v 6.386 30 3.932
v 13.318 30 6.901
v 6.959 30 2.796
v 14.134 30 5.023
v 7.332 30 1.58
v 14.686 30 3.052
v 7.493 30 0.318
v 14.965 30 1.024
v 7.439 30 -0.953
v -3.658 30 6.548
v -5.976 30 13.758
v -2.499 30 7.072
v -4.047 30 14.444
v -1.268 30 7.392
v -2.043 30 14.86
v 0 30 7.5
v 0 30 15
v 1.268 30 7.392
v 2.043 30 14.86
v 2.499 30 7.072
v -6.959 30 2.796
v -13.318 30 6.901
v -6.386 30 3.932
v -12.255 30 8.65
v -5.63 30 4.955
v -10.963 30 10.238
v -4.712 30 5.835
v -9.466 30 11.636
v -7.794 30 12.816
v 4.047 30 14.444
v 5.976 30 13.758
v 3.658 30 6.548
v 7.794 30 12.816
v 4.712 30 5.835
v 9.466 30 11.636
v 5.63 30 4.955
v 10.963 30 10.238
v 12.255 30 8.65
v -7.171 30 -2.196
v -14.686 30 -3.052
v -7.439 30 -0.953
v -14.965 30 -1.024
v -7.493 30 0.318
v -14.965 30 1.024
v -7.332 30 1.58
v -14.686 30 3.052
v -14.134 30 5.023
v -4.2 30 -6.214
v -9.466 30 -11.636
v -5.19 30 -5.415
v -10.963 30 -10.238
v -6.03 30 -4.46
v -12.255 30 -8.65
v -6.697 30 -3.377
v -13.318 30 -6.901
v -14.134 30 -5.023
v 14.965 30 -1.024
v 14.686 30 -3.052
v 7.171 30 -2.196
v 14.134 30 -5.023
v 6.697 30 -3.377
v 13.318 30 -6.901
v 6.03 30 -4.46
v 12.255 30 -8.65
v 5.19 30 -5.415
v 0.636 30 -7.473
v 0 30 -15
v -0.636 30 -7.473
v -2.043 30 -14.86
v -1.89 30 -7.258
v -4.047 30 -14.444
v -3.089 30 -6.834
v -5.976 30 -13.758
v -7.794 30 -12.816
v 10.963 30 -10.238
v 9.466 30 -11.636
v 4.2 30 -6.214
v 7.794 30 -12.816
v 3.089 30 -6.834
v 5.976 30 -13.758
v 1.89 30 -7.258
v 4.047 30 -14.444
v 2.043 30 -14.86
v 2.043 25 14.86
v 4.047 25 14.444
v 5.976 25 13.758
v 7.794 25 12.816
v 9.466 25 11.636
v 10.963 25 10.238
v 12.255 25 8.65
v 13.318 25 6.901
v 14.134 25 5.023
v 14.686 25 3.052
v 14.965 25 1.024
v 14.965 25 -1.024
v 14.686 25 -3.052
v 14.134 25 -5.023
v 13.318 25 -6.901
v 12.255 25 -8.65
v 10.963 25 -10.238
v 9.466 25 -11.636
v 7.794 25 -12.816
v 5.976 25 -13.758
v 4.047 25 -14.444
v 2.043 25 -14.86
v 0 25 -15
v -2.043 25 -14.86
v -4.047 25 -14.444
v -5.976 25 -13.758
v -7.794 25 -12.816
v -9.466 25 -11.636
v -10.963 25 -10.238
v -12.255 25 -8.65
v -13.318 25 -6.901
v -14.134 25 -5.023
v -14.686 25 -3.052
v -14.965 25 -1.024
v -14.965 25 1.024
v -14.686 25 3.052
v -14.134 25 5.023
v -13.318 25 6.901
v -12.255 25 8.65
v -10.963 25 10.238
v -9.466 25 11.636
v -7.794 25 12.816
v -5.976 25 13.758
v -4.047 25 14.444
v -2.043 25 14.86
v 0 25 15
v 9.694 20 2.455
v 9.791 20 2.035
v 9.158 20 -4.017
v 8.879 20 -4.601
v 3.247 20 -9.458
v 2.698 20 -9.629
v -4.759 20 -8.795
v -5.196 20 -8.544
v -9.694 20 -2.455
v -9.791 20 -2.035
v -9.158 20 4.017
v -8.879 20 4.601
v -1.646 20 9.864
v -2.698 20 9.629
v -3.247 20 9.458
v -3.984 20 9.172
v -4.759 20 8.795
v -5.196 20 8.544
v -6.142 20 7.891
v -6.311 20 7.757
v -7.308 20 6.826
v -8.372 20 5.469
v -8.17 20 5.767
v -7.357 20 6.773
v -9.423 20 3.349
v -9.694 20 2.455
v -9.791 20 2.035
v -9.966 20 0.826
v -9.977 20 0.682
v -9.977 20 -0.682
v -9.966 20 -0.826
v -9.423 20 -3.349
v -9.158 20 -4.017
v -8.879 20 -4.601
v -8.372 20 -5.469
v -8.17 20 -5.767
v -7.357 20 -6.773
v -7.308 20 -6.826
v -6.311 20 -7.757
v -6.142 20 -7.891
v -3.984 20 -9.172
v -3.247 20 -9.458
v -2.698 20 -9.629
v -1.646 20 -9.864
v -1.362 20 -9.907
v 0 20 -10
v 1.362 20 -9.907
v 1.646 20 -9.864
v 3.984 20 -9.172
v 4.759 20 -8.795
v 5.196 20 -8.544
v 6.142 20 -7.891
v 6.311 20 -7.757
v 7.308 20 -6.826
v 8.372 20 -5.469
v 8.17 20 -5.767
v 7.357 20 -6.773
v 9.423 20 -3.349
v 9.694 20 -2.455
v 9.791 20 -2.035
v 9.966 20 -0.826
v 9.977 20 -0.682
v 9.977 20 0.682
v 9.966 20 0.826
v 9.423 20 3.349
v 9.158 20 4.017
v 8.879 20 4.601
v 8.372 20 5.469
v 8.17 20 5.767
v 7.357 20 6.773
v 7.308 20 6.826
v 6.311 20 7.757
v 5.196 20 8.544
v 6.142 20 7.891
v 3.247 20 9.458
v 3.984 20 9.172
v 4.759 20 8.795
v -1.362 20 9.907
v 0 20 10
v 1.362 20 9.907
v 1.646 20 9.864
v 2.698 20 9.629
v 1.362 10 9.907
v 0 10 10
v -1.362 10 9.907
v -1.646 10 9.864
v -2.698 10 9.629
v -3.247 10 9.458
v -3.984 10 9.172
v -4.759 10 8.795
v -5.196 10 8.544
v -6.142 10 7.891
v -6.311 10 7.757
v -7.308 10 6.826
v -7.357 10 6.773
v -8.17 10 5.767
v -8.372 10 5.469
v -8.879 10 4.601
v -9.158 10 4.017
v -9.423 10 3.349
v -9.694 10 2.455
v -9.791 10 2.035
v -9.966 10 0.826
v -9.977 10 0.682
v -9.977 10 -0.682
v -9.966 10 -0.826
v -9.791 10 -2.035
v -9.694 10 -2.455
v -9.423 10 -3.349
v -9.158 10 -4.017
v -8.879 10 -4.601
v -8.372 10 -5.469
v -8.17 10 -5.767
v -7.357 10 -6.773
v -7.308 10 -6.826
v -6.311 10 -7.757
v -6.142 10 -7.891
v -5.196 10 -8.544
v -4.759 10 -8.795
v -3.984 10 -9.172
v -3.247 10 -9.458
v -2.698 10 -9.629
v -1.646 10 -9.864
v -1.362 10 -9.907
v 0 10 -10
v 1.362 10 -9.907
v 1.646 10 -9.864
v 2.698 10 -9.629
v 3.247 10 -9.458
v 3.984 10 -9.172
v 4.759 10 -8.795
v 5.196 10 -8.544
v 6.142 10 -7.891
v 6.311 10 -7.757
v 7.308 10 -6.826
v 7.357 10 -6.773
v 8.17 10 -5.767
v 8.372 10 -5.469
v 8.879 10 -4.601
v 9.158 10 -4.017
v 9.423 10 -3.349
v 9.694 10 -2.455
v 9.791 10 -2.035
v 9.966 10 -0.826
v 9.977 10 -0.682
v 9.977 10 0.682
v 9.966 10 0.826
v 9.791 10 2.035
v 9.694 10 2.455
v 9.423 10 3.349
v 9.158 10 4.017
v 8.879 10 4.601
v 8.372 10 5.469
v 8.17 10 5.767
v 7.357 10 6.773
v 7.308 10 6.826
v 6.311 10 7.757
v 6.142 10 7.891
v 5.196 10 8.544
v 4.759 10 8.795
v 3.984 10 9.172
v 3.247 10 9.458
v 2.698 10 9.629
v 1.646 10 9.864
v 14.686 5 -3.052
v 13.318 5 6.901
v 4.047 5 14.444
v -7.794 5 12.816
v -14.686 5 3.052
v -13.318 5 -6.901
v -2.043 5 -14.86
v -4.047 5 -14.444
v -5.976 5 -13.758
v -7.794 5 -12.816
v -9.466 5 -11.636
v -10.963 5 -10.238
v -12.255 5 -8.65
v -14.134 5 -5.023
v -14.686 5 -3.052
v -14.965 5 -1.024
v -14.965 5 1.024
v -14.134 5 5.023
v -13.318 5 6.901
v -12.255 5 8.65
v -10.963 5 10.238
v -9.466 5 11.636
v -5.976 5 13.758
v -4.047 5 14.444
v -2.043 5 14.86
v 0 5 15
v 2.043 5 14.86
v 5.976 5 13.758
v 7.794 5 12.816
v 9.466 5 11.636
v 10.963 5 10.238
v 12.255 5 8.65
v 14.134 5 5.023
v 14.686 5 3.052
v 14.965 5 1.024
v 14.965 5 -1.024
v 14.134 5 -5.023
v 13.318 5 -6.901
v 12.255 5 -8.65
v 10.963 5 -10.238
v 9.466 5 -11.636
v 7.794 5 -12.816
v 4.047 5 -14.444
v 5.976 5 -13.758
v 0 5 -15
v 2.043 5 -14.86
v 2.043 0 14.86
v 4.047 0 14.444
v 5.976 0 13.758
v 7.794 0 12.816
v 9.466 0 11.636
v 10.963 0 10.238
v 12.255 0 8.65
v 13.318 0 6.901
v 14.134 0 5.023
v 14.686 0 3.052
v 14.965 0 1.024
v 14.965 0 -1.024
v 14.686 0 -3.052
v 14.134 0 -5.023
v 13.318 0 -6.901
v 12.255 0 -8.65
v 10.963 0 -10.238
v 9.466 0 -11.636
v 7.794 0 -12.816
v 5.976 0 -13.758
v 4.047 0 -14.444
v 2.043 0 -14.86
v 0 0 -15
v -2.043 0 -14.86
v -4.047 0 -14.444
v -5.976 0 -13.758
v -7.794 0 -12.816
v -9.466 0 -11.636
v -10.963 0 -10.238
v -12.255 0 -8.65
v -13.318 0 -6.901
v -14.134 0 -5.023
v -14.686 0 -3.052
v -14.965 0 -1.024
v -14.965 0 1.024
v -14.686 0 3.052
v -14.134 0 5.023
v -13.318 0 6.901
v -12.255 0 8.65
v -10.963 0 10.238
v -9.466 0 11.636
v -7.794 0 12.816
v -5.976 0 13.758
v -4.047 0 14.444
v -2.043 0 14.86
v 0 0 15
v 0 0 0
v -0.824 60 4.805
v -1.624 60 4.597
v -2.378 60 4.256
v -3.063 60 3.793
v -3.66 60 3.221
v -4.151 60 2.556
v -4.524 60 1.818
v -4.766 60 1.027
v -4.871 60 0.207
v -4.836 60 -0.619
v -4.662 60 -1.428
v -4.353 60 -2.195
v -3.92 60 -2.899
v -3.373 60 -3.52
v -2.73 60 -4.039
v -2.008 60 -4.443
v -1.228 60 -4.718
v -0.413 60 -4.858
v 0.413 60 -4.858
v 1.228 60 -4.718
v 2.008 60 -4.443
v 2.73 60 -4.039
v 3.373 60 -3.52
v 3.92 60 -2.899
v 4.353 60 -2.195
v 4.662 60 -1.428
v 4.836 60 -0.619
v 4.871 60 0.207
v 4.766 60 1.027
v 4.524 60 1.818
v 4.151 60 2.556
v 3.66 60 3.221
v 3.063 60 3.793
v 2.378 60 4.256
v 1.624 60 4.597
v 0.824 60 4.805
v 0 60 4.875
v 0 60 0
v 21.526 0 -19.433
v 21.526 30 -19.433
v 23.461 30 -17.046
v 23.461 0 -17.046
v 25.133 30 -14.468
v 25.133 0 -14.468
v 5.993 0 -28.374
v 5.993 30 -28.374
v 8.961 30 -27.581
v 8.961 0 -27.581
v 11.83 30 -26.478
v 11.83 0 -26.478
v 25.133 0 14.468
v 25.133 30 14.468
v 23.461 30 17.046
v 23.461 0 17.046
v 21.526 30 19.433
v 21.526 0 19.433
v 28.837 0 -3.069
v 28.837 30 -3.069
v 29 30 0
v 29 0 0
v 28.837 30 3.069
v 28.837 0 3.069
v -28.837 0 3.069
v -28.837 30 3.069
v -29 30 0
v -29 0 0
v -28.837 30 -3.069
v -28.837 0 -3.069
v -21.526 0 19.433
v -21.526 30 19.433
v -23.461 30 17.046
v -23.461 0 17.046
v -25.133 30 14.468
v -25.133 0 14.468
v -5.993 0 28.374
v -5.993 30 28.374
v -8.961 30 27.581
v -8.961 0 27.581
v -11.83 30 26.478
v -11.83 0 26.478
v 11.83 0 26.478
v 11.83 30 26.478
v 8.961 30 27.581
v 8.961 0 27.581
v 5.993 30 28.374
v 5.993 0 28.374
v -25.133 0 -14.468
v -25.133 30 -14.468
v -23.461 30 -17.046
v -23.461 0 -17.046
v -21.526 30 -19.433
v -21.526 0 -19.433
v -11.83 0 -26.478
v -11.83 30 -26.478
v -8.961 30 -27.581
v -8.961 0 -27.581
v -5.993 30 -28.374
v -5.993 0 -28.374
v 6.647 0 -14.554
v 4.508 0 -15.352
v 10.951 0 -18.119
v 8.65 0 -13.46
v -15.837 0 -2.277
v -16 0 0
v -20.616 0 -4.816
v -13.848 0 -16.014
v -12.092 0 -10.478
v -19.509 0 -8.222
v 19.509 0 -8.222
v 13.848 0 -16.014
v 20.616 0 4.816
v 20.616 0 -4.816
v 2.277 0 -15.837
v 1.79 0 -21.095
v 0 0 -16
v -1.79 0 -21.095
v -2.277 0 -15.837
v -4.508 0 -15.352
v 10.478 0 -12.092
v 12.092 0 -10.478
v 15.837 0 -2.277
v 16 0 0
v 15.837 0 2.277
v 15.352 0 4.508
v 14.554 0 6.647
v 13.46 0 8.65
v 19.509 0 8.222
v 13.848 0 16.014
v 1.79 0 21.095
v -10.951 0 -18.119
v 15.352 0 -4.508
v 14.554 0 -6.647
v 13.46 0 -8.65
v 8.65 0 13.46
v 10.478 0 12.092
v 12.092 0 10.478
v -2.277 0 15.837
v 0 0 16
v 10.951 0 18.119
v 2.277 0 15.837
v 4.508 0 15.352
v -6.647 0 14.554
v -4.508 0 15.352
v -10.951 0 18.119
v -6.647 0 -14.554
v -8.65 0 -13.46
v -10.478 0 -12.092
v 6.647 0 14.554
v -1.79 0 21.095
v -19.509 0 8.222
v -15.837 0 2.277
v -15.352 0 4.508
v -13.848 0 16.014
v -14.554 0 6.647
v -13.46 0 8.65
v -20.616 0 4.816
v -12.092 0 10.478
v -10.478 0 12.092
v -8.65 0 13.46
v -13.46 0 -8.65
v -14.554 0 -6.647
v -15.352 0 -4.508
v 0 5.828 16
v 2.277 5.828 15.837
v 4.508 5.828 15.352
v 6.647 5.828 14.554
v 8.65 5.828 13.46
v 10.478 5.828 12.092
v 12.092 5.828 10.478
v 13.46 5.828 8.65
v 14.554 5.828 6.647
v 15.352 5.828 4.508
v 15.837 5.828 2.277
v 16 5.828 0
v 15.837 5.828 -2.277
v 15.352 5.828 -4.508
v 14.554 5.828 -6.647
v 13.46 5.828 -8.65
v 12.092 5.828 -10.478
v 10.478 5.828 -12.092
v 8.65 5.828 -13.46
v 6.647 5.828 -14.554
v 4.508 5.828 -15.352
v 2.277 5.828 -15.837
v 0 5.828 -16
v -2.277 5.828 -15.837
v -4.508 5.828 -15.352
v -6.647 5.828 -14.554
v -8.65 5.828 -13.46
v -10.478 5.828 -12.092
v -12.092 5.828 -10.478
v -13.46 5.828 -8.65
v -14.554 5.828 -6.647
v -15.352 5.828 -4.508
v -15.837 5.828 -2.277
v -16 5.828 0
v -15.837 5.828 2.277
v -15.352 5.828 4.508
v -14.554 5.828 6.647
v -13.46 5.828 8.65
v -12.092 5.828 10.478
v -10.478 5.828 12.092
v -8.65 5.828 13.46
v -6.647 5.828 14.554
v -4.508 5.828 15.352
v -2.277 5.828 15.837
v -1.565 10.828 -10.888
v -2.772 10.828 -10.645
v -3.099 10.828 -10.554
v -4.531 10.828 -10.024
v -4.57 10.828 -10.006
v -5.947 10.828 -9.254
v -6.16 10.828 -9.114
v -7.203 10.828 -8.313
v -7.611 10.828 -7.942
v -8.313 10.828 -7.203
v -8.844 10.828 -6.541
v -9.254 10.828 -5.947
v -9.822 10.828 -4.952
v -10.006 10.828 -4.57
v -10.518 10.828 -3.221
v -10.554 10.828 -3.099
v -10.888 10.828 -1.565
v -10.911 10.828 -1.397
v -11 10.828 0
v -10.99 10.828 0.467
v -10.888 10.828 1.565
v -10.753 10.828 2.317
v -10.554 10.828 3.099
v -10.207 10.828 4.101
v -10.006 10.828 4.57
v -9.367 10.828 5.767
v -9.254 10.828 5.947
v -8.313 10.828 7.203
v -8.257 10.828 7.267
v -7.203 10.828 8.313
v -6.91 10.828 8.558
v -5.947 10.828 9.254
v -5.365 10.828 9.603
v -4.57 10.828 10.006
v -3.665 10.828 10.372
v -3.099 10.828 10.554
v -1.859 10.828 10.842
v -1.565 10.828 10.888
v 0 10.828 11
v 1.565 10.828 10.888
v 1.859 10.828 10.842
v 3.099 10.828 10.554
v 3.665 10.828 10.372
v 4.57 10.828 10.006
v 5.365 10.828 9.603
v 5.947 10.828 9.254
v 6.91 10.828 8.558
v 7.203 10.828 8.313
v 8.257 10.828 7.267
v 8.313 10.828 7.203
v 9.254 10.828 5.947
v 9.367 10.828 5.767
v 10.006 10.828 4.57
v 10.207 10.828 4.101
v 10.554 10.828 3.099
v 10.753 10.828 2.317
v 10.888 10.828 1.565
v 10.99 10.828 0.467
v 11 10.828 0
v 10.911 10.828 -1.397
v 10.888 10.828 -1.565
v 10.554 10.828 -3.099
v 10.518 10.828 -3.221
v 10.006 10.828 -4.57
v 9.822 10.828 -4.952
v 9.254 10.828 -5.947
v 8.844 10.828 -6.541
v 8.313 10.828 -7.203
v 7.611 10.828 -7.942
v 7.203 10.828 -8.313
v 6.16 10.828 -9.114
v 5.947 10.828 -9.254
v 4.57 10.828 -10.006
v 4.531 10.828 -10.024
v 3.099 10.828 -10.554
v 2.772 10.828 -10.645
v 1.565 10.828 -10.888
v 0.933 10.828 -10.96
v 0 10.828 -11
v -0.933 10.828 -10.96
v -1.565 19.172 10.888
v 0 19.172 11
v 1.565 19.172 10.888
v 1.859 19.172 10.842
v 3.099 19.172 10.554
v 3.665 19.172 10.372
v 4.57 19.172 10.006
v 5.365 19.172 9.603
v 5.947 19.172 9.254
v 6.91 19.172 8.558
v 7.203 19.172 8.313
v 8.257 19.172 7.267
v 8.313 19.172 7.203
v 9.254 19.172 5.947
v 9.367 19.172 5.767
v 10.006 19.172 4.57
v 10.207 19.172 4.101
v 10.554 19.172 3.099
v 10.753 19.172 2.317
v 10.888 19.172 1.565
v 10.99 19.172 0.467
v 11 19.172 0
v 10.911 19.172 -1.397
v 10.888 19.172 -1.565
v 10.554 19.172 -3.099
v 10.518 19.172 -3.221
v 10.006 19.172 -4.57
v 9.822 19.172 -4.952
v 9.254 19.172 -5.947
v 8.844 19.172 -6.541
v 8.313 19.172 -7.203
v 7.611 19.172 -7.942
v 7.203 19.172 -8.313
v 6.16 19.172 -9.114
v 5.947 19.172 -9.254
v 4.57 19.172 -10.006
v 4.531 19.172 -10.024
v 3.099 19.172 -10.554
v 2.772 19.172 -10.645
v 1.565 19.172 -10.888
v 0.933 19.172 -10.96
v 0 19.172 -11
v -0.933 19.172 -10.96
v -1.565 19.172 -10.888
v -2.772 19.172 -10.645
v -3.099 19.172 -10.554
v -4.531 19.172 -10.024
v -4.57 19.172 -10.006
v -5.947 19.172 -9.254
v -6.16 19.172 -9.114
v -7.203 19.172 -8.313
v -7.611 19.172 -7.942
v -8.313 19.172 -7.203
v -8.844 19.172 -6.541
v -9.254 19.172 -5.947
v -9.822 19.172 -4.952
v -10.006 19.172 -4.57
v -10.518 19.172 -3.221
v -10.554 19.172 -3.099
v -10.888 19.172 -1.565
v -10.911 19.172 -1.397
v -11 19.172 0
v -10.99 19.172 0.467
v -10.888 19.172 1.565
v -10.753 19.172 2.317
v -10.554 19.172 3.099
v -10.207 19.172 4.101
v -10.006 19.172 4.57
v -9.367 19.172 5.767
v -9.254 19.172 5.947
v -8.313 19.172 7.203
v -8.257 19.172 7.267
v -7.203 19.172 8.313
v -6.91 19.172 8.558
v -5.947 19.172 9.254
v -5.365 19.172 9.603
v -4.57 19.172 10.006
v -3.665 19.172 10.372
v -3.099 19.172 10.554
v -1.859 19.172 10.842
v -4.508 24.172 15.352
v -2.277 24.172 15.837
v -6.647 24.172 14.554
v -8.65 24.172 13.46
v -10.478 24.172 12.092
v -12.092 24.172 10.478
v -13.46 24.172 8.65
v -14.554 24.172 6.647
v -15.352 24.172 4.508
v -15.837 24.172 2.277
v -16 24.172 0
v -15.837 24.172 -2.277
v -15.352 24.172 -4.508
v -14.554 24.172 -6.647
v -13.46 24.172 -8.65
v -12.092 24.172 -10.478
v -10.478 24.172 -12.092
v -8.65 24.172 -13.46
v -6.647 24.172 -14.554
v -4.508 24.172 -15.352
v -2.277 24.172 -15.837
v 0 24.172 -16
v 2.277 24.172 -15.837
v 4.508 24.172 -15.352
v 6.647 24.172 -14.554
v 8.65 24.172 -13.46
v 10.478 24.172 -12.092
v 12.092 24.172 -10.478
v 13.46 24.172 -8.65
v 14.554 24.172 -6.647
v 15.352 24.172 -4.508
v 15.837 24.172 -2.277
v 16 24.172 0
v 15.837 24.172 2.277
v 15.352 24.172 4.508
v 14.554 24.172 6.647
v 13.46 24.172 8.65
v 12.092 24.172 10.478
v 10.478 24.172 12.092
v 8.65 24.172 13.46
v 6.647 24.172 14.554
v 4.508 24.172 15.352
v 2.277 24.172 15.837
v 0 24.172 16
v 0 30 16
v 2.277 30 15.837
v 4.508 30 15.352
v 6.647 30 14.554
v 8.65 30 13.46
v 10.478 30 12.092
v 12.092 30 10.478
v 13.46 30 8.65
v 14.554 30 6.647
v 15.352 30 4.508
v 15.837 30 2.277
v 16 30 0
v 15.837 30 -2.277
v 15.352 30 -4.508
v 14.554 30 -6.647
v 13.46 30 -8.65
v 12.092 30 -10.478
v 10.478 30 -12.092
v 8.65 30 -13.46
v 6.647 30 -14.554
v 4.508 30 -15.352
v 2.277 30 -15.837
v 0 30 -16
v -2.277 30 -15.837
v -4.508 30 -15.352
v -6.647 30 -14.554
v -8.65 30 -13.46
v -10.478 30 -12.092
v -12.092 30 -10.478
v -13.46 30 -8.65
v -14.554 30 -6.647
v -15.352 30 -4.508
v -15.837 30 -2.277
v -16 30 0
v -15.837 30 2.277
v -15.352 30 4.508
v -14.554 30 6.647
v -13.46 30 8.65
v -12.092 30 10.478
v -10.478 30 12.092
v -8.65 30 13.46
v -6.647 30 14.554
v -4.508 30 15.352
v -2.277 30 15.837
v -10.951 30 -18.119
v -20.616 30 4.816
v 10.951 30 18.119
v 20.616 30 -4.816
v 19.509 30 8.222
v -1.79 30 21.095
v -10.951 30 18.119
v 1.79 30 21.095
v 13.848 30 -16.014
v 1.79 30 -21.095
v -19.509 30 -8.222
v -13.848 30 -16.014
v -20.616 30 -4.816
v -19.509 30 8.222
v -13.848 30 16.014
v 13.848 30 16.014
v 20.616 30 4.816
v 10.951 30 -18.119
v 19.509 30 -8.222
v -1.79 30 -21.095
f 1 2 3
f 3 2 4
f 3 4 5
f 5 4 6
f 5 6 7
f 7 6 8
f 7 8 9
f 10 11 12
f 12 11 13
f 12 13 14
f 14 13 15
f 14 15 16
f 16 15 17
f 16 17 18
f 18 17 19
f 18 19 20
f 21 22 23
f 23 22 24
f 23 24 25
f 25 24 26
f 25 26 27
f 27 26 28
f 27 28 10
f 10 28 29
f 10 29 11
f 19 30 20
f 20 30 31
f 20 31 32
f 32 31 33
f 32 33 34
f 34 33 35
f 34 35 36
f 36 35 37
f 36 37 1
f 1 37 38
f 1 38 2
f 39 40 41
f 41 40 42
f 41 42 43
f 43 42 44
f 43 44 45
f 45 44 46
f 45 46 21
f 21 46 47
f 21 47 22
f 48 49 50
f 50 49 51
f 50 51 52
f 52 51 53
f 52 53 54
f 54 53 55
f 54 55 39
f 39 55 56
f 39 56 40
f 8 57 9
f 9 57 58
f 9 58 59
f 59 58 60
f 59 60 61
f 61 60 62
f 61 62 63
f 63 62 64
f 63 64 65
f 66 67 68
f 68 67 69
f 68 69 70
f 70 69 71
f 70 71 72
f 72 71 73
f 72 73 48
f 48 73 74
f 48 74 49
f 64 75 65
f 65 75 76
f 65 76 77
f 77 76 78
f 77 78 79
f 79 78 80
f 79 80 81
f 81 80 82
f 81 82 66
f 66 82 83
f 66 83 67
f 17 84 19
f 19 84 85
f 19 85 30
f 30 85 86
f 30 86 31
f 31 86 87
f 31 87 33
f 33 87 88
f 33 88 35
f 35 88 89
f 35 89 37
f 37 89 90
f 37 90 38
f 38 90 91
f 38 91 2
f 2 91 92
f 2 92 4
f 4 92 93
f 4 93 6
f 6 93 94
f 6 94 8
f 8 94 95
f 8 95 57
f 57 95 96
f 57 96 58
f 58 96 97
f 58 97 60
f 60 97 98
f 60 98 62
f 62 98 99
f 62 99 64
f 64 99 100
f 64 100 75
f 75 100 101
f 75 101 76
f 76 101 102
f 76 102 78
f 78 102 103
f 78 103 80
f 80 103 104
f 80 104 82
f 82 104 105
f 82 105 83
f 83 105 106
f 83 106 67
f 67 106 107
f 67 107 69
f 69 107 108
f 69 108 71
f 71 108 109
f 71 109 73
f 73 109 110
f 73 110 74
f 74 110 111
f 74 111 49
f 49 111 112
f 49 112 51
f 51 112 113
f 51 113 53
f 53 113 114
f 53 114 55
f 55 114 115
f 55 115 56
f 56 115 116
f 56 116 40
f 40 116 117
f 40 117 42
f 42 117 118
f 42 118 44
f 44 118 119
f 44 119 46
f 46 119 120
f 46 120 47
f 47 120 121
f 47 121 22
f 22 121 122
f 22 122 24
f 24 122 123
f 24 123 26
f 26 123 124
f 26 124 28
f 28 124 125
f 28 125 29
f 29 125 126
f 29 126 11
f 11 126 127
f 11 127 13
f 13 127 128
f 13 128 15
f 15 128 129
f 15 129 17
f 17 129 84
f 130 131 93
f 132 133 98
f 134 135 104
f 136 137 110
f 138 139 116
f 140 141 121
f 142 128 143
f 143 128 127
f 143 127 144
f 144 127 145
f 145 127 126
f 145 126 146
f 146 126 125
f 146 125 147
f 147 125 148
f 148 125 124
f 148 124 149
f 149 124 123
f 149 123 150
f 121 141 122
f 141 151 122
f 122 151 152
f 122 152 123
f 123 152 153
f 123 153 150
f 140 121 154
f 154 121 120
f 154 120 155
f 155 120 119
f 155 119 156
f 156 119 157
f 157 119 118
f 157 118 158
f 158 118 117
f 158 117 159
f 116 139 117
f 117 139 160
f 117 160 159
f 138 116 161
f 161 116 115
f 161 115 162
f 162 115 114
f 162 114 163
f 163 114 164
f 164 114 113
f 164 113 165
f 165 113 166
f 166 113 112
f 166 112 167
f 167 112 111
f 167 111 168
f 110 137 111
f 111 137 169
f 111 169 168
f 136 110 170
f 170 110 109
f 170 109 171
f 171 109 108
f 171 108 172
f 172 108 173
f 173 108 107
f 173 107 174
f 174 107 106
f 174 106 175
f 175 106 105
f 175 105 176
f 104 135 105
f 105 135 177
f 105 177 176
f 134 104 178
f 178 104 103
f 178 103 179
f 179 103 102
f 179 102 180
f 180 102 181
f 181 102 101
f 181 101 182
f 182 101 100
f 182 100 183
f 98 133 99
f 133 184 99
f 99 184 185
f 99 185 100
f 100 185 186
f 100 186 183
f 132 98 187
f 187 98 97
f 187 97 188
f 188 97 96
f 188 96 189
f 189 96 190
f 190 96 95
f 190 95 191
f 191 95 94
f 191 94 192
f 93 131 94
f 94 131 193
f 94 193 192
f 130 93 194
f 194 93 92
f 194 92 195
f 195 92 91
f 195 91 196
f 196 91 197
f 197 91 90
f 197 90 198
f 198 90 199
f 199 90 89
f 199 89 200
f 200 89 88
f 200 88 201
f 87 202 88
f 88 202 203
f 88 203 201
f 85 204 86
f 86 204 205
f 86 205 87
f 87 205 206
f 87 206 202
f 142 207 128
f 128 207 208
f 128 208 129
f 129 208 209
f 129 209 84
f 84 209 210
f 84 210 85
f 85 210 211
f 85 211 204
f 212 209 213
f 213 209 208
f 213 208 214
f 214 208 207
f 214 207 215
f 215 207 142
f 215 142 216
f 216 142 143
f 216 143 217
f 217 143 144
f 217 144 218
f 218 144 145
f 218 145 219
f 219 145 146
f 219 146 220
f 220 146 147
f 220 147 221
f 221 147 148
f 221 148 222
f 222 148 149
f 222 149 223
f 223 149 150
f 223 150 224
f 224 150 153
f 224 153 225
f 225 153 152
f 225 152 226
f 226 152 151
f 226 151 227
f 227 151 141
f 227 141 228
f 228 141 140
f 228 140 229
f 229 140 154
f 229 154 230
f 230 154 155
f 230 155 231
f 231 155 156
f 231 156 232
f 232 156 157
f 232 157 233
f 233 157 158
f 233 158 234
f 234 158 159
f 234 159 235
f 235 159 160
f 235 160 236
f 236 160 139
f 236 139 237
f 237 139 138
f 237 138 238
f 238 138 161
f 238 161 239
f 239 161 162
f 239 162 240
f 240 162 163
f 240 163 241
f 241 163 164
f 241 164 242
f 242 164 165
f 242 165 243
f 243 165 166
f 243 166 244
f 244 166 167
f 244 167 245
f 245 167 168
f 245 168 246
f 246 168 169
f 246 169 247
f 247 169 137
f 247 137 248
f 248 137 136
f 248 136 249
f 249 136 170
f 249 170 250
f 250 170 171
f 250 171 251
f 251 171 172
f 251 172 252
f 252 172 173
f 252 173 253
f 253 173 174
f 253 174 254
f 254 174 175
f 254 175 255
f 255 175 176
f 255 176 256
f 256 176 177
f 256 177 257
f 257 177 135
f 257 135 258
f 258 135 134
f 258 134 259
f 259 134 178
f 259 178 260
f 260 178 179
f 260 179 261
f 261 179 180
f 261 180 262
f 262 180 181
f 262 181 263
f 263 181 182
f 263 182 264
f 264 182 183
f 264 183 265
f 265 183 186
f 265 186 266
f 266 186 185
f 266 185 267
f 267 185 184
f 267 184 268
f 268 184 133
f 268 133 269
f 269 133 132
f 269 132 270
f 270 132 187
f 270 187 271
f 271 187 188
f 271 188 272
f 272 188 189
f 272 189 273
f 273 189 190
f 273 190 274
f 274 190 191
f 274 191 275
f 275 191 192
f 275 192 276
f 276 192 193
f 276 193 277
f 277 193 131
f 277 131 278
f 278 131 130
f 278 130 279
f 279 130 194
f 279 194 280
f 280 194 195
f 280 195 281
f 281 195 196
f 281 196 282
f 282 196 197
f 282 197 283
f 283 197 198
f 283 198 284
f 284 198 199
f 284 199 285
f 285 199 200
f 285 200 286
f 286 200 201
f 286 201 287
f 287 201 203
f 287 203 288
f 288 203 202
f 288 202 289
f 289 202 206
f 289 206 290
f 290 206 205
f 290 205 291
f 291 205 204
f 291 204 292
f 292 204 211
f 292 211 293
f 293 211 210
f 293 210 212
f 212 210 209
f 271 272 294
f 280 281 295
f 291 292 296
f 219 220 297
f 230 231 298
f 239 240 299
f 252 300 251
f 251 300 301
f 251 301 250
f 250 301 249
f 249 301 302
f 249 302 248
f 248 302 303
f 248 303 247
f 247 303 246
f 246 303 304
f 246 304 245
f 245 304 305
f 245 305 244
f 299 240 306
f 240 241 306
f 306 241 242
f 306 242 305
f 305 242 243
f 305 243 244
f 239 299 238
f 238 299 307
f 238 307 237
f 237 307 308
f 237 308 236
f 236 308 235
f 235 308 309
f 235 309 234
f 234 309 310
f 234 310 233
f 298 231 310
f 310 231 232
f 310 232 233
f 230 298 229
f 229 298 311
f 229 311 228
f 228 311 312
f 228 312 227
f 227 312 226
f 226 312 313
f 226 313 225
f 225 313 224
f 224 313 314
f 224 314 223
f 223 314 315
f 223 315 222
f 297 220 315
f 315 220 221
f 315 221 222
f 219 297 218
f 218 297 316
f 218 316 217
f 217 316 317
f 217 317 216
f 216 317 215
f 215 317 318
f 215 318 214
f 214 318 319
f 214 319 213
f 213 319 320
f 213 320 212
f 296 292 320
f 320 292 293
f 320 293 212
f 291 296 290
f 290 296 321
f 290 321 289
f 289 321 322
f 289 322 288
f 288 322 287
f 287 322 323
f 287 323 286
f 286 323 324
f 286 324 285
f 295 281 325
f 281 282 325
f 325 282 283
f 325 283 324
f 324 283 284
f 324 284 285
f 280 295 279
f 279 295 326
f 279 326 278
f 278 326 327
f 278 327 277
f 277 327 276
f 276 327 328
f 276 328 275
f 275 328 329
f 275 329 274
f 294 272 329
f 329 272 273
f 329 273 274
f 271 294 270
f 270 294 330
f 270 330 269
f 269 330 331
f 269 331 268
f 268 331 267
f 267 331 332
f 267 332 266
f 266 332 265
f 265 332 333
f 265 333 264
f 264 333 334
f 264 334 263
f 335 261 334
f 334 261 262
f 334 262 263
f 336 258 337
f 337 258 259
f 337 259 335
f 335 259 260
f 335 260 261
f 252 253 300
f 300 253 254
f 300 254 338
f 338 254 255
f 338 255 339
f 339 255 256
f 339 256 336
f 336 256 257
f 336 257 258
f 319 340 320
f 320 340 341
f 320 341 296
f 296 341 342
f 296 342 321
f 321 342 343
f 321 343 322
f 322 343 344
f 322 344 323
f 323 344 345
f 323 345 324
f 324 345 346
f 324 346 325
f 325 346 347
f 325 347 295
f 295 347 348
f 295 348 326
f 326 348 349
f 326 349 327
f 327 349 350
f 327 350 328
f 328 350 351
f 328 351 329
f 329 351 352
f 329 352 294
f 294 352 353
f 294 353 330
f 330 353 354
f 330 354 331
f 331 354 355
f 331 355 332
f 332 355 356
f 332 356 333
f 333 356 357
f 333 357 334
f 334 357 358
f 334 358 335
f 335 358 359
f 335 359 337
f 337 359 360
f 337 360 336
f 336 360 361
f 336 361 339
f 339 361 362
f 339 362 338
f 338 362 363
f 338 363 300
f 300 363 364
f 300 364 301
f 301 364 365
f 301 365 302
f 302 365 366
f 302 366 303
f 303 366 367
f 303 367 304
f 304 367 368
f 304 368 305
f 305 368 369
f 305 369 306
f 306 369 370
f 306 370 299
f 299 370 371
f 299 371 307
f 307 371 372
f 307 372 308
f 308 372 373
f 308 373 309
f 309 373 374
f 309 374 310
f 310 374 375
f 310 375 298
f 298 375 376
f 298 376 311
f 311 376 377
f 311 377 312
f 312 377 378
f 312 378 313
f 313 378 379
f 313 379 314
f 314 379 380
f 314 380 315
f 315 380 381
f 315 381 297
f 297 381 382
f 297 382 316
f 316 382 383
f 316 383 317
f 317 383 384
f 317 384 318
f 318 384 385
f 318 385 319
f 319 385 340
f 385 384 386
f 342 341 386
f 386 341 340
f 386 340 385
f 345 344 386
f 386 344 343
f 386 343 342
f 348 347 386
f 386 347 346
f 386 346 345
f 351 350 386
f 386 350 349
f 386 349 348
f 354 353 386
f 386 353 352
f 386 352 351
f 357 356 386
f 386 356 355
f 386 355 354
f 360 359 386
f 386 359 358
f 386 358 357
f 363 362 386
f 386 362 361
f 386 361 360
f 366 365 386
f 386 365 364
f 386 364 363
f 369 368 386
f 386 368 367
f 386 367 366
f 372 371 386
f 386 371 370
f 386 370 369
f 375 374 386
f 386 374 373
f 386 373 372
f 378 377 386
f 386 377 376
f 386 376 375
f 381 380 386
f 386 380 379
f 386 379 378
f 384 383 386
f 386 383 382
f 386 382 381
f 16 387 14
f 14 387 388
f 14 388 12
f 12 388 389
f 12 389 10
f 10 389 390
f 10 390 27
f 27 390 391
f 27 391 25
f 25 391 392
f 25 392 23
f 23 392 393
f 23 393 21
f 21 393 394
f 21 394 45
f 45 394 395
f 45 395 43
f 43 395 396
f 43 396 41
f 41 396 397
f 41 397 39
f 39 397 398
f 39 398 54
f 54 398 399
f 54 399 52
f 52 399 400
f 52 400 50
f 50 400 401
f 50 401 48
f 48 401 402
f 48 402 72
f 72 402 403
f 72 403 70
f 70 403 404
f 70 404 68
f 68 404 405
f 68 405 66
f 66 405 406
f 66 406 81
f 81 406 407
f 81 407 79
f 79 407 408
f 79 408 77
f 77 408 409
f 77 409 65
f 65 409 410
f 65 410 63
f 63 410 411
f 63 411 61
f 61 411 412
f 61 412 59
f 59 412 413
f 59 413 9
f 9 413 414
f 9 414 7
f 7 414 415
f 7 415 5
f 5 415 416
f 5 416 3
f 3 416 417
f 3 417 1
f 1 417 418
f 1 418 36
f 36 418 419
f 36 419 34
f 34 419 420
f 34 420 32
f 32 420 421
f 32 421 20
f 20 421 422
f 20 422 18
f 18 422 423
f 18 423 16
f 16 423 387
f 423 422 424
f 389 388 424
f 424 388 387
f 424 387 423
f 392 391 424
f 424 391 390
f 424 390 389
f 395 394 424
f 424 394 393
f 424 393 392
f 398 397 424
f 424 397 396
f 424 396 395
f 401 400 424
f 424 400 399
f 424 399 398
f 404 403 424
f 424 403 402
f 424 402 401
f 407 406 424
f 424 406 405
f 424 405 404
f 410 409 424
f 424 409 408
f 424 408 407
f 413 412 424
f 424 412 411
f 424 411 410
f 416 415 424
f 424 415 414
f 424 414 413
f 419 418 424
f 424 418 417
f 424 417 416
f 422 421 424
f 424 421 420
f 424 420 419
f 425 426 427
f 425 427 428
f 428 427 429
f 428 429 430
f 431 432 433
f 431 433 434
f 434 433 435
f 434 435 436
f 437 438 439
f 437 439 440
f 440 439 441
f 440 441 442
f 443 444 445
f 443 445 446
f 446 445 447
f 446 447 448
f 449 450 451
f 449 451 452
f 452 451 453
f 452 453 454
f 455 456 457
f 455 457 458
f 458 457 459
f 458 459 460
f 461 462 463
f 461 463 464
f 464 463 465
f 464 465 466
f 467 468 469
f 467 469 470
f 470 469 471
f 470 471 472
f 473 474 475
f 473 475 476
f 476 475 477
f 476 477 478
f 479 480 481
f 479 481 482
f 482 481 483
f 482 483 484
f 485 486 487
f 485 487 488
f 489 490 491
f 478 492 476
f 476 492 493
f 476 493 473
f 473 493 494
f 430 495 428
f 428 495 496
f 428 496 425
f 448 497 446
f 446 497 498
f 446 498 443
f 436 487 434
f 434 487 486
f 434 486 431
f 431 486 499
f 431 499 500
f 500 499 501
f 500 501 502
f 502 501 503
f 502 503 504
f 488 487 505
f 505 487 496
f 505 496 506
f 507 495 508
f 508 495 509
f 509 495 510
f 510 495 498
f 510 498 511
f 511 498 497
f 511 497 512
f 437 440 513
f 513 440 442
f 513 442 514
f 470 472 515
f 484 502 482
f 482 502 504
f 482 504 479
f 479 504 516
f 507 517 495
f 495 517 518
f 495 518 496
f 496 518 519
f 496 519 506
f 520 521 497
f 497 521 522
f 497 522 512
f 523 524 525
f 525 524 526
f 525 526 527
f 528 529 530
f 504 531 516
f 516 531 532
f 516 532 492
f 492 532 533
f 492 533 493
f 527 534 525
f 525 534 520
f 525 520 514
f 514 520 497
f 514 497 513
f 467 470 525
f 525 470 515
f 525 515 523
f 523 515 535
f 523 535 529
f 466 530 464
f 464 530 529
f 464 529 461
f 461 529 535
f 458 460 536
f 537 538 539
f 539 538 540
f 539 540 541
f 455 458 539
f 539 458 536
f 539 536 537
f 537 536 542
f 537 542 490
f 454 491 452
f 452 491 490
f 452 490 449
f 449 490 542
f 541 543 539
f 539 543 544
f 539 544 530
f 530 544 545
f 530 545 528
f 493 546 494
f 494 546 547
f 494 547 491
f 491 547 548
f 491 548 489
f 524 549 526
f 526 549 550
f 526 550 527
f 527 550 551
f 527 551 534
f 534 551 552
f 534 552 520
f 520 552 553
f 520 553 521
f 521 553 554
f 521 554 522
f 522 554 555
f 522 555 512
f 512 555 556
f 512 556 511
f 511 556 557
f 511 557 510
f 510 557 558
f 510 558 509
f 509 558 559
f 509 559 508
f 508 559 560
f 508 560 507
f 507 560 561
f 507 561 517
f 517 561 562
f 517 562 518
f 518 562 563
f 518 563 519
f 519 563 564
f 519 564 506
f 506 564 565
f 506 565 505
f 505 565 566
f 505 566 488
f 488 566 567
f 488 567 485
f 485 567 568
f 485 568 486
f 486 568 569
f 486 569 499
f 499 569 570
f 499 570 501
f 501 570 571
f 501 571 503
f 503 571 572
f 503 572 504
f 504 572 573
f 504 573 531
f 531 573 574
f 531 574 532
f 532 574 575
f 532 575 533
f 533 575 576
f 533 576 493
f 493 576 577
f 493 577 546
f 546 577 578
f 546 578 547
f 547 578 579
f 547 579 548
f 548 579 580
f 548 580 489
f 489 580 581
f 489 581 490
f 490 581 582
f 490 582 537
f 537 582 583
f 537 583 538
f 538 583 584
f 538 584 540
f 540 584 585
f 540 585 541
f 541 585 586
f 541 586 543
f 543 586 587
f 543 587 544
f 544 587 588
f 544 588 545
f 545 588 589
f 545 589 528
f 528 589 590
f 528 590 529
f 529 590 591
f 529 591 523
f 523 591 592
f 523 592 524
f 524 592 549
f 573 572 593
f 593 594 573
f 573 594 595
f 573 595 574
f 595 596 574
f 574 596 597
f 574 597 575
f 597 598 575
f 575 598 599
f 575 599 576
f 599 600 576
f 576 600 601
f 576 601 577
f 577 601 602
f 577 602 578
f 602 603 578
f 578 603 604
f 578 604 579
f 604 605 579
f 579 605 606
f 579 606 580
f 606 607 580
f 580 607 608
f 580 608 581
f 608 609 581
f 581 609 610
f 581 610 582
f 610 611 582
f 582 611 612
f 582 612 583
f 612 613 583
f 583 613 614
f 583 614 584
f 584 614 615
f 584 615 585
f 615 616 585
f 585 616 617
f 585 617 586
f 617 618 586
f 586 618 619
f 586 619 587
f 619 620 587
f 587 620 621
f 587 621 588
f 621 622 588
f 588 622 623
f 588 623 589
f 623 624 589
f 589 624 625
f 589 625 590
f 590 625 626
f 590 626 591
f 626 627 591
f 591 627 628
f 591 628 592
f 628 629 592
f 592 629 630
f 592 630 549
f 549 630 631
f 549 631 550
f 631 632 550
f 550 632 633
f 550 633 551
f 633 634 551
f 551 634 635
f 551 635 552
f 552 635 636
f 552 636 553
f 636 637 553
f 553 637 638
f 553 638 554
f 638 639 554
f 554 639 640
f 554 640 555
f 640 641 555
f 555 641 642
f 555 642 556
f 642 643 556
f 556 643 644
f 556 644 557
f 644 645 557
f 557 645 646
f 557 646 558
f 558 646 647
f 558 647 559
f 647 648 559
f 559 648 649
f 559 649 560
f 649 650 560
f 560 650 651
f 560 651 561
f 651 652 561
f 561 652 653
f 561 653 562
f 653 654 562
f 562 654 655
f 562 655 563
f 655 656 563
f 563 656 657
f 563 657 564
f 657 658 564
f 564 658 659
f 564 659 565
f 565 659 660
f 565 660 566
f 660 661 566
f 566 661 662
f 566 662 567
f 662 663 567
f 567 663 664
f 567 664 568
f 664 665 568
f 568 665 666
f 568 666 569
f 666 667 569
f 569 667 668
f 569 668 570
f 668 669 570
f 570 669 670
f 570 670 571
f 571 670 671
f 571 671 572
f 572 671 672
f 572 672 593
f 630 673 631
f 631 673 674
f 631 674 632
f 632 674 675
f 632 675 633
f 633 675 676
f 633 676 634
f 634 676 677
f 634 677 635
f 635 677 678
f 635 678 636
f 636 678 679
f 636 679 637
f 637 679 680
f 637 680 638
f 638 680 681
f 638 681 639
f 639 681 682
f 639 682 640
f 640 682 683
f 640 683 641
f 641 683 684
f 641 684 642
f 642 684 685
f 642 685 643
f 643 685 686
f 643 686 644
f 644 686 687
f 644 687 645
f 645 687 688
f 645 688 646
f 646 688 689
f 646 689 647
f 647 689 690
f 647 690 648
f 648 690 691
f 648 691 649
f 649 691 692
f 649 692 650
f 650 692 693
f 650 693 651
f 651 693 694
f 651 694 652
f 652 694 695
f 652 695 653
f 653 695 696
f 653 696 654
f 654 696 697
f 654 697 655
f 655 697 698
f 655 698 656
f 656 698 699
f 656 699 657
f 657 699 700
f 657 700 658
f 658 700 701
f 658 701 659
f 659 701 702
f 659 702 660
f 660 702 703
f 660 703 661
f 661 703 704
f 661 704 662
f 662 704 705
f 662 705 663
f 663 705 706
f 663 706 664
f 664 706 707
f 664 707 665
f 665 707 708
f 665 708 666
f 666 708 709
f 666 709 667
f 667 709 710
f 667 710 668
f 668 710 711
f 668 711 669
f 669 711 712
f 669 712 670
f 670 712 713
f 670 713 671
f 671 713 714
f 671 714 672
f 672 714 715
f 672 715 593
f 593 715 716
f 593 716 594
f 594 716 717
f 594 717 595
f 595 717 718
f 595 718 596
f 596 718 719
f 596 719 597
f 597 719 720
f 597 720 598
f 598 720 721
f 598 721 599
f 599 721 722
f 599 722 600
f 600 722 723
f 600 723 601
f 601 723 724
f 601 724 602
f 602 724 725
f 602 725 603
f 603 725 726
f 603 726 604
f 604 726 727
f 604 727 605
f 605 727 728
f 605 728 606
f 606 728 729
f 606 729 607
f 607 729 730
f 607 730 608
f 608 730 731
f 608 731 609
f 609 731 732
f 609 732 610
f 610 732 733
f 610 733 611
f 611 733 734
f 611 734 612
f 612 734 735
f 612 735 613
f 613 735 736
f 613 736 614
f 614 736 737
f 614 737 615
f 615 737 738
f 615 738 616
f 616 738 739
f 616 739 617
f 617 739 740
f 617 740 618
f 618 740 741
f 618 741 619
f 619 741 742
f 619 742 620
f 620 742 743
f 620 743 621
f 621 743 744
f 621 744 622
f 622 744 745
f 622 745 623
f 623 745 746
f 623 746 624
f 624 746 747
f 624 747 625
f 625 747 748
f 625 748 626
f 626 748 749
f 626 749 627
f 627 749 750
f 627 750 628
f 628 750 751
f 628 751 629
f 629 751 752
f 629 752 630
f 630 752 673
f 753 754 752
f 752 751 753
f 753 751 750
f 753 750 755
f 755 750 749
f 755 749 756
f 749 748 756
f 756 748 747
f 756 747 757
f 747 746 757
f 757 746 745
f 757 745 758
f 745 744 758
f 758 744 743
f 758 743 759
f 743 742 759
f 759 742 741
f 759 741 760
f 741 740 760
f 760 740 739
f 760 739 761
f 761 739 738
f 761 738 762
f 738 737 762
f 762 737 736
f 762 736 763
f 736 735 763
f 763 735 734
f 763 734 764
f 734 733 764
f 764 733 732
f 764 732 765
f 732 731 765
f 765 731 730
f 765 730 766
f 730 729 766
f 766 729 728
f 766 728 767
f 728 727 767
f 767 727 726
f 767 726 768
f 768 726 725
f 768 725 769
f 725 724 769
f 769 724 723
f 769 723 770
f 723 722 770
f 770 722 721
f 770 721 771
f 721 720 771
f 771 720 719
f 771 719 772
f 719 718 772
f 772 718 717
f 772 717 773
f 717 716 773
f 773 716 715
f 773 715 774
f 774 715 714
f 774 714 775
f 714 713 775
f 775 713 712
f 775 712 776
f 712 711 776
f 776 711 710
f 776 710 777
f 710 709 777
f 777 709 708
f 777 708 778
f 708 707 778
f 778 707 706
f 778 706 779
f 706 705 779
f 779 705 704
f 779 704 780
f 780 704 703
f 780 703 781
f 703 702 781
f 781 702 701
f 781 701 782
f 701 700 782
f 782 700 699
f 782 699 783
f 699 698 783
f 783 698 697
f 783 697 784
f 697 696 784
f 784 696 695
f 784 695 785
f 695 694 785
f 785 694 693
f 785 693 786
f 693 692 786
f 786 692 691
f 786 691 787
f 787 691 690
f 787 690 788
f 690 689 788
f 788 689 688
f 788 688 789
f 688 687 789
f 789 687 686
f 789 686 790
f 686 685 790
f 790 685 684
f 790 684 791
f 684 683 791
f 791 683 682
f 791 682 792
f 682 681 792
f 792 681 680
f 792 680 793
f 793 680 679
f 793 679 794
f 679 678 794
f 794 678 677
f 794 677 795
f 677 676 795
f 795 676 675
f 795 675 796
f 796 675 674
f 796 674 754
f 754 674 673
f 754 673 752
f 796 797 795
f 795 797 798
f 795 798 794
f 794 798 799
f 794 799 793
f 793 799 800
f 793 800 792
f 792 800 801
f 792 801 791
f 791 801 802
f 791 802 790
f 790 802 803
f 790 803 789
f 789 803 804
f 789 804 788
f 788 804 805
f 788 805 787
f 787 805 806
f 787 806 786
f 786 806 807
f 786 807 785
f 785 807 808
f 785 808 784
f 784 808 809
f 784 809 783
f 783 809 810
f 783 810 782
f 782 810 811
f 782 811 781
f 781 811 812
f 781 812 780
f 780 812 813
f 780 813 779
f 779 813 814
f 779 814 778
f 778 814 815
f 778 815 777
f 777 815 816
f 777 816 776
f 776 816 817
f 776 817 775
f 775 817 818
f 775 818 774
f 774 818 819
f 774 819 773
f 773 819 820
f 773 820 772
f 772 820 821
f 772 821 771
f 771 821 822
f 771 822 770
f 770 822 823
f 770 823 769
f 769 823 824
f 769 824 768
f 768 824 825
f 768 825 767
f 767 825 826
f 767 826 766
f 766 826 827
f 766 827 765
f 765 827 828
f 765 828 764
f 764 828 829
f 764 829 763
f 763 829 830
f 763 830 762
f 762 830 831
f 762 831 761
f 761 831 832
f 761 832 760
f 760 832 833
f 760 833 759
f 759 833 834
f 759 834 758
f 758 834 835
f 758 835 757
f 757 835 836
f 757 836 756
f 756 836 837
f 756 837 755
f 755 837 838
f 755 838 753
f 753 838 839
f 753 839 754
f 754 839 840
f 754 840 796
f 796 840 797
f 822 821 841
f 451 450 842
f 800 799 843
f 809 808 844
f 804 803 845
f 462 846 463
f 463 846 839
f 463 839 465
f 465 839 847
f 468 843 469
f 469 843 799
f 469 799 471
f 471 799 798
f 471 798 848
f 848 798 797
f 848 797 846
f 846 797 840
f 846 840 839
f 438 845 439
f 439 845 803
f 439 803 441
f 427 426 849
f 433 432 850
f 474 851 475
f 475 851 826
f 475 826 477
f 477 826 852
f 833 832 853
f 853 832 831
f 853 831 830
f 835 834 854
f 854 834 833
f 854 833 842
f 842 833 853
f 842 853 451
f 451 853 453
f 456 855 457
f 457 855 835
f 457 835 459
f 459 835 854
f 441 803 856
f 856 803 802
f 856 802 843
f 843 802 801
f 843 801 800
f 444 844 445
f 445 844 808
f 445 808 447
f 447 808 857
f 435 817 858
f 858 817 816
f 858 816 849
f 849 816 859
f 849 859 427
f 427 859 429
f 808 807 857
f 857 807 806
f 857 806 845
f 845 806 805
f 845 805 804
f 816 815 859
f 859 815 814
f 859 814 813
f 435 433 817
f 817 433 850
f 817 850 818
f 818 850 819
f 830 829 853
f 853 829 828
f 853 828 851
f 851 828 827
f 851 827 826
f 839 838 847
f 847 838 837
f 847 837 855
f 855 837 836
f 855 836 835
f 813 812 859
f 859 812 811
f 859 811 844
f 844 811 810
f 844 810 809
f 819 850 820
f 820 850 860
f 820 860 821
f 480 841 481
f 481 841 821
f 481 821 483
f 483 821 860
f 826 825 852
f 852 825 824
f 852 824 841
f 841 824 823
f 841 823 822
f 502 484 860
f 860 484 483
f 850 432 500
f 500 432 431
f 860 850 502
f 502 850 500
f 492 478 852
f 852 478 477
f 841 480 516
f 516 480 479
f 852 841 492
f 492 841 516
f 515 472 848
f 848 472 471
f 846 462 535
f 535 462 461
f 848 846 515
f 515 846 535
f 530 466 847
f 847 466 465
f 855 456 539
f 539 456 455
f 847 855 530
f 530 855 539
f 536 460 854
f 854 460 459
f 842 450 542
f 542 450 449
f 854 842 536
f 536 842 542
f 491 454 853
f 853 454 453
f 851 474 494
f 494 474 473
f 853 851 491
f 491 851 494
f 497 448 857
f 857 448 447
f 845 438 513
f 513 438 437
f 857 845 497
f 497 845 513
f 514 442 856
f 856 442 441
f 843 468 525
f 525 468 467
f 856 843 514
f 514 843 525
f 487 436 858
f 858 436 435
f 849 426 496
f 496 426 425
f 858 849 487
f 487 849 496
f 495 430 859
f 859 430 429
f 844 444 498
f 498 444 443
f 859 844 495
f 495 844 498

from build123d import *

# Parameters (mm, degrees)
CUT_EXTRUDE1_DEPTH  = 51.813384064
CIRPATTERN1_COUNT   = 10
SKETCH4_R           = 7.5
BOSS_EXTRUDE1_DEPTH = 30
BOSS_EXTRUDE1_TAPER = 5


with BuildPart() as part:
    # Sketch1 → Revolve1 (revolve)
    with BuildSketch(Plane.XY, mode=Mode.PRIVATE) as revolve1_sk:
        Polygon((15, 30), (15, 25), (10, 20), (10, 10), (15, 5), (15, 0), (0, 0), (0, 30), align=None)
    revolve(revolve1_sk.sketch.rotate(Axis((0, 67.578947368, 0), (0, -1, 0)), 90), axis=Axis((0, 67.578947368, 0), (0, -1, 0)))

    # Sketch4 → Boss-Extrude1 (add)
    with BuildSketch(Plane(origin=(0, 30, 0), x_dir=(1, 0, 0), z_dir=(0, 1, 0))):
        Circle(SKETCH4_R)
    extrude(amount=BOSS_EXTRUDE1_DEPTH, taper=BOSS_EXTRUDE1_TAPER)


with BuildPart() as body_2:
    # Sketch2 → Revolve2 (revolve)
    with BuildSketch(Plane.XY, mode=Mode.PRIVATE) as revolve2_sk:
        Polygon((16, 30), (29, 30), (29, 0), (16, 0), (16, 5.828427125), (11, 10.828427125), (11, 19.171572875), (16, 24.171572875), align=None)
    revolve(revolve2_sk.sketch.rotate(Axis((0, 82.985543577, 0), (0, -1, 0)), 90), axis=Axis((0, 82.985543577, 0), (0, -1, 0)))

    # Sketch8 → Cut-Extrude1 (cut, through all)
    with BuildSketch(Plane.XZ):
        Polygon((-1.790438074, -21.095246631), (1.790438074, -21.095246631), (10.81715224, -36.729974192), (-10.81715224, -36.729974192), align=None)
    cut_extrude1 = extrude(amount=-CUT_EXTRUDE1_DEPTH, mode=Mode.SUBTRACT)

    # CirPattern1: Cut-Extrude1 ×10 about axis
    cirpattern1_axis = Axis((0, 0, 0), (0, 1, 0))
    for i in range(1, CIRPATTERN1_COUNT):
        add(cut_extrude1.rotate(cirpattern1_axis, i * 360 / CIRPATTERN1_COUNT), mode=Mode.SUBTRACT)


solid = Compound([part.part, body_2.part])
